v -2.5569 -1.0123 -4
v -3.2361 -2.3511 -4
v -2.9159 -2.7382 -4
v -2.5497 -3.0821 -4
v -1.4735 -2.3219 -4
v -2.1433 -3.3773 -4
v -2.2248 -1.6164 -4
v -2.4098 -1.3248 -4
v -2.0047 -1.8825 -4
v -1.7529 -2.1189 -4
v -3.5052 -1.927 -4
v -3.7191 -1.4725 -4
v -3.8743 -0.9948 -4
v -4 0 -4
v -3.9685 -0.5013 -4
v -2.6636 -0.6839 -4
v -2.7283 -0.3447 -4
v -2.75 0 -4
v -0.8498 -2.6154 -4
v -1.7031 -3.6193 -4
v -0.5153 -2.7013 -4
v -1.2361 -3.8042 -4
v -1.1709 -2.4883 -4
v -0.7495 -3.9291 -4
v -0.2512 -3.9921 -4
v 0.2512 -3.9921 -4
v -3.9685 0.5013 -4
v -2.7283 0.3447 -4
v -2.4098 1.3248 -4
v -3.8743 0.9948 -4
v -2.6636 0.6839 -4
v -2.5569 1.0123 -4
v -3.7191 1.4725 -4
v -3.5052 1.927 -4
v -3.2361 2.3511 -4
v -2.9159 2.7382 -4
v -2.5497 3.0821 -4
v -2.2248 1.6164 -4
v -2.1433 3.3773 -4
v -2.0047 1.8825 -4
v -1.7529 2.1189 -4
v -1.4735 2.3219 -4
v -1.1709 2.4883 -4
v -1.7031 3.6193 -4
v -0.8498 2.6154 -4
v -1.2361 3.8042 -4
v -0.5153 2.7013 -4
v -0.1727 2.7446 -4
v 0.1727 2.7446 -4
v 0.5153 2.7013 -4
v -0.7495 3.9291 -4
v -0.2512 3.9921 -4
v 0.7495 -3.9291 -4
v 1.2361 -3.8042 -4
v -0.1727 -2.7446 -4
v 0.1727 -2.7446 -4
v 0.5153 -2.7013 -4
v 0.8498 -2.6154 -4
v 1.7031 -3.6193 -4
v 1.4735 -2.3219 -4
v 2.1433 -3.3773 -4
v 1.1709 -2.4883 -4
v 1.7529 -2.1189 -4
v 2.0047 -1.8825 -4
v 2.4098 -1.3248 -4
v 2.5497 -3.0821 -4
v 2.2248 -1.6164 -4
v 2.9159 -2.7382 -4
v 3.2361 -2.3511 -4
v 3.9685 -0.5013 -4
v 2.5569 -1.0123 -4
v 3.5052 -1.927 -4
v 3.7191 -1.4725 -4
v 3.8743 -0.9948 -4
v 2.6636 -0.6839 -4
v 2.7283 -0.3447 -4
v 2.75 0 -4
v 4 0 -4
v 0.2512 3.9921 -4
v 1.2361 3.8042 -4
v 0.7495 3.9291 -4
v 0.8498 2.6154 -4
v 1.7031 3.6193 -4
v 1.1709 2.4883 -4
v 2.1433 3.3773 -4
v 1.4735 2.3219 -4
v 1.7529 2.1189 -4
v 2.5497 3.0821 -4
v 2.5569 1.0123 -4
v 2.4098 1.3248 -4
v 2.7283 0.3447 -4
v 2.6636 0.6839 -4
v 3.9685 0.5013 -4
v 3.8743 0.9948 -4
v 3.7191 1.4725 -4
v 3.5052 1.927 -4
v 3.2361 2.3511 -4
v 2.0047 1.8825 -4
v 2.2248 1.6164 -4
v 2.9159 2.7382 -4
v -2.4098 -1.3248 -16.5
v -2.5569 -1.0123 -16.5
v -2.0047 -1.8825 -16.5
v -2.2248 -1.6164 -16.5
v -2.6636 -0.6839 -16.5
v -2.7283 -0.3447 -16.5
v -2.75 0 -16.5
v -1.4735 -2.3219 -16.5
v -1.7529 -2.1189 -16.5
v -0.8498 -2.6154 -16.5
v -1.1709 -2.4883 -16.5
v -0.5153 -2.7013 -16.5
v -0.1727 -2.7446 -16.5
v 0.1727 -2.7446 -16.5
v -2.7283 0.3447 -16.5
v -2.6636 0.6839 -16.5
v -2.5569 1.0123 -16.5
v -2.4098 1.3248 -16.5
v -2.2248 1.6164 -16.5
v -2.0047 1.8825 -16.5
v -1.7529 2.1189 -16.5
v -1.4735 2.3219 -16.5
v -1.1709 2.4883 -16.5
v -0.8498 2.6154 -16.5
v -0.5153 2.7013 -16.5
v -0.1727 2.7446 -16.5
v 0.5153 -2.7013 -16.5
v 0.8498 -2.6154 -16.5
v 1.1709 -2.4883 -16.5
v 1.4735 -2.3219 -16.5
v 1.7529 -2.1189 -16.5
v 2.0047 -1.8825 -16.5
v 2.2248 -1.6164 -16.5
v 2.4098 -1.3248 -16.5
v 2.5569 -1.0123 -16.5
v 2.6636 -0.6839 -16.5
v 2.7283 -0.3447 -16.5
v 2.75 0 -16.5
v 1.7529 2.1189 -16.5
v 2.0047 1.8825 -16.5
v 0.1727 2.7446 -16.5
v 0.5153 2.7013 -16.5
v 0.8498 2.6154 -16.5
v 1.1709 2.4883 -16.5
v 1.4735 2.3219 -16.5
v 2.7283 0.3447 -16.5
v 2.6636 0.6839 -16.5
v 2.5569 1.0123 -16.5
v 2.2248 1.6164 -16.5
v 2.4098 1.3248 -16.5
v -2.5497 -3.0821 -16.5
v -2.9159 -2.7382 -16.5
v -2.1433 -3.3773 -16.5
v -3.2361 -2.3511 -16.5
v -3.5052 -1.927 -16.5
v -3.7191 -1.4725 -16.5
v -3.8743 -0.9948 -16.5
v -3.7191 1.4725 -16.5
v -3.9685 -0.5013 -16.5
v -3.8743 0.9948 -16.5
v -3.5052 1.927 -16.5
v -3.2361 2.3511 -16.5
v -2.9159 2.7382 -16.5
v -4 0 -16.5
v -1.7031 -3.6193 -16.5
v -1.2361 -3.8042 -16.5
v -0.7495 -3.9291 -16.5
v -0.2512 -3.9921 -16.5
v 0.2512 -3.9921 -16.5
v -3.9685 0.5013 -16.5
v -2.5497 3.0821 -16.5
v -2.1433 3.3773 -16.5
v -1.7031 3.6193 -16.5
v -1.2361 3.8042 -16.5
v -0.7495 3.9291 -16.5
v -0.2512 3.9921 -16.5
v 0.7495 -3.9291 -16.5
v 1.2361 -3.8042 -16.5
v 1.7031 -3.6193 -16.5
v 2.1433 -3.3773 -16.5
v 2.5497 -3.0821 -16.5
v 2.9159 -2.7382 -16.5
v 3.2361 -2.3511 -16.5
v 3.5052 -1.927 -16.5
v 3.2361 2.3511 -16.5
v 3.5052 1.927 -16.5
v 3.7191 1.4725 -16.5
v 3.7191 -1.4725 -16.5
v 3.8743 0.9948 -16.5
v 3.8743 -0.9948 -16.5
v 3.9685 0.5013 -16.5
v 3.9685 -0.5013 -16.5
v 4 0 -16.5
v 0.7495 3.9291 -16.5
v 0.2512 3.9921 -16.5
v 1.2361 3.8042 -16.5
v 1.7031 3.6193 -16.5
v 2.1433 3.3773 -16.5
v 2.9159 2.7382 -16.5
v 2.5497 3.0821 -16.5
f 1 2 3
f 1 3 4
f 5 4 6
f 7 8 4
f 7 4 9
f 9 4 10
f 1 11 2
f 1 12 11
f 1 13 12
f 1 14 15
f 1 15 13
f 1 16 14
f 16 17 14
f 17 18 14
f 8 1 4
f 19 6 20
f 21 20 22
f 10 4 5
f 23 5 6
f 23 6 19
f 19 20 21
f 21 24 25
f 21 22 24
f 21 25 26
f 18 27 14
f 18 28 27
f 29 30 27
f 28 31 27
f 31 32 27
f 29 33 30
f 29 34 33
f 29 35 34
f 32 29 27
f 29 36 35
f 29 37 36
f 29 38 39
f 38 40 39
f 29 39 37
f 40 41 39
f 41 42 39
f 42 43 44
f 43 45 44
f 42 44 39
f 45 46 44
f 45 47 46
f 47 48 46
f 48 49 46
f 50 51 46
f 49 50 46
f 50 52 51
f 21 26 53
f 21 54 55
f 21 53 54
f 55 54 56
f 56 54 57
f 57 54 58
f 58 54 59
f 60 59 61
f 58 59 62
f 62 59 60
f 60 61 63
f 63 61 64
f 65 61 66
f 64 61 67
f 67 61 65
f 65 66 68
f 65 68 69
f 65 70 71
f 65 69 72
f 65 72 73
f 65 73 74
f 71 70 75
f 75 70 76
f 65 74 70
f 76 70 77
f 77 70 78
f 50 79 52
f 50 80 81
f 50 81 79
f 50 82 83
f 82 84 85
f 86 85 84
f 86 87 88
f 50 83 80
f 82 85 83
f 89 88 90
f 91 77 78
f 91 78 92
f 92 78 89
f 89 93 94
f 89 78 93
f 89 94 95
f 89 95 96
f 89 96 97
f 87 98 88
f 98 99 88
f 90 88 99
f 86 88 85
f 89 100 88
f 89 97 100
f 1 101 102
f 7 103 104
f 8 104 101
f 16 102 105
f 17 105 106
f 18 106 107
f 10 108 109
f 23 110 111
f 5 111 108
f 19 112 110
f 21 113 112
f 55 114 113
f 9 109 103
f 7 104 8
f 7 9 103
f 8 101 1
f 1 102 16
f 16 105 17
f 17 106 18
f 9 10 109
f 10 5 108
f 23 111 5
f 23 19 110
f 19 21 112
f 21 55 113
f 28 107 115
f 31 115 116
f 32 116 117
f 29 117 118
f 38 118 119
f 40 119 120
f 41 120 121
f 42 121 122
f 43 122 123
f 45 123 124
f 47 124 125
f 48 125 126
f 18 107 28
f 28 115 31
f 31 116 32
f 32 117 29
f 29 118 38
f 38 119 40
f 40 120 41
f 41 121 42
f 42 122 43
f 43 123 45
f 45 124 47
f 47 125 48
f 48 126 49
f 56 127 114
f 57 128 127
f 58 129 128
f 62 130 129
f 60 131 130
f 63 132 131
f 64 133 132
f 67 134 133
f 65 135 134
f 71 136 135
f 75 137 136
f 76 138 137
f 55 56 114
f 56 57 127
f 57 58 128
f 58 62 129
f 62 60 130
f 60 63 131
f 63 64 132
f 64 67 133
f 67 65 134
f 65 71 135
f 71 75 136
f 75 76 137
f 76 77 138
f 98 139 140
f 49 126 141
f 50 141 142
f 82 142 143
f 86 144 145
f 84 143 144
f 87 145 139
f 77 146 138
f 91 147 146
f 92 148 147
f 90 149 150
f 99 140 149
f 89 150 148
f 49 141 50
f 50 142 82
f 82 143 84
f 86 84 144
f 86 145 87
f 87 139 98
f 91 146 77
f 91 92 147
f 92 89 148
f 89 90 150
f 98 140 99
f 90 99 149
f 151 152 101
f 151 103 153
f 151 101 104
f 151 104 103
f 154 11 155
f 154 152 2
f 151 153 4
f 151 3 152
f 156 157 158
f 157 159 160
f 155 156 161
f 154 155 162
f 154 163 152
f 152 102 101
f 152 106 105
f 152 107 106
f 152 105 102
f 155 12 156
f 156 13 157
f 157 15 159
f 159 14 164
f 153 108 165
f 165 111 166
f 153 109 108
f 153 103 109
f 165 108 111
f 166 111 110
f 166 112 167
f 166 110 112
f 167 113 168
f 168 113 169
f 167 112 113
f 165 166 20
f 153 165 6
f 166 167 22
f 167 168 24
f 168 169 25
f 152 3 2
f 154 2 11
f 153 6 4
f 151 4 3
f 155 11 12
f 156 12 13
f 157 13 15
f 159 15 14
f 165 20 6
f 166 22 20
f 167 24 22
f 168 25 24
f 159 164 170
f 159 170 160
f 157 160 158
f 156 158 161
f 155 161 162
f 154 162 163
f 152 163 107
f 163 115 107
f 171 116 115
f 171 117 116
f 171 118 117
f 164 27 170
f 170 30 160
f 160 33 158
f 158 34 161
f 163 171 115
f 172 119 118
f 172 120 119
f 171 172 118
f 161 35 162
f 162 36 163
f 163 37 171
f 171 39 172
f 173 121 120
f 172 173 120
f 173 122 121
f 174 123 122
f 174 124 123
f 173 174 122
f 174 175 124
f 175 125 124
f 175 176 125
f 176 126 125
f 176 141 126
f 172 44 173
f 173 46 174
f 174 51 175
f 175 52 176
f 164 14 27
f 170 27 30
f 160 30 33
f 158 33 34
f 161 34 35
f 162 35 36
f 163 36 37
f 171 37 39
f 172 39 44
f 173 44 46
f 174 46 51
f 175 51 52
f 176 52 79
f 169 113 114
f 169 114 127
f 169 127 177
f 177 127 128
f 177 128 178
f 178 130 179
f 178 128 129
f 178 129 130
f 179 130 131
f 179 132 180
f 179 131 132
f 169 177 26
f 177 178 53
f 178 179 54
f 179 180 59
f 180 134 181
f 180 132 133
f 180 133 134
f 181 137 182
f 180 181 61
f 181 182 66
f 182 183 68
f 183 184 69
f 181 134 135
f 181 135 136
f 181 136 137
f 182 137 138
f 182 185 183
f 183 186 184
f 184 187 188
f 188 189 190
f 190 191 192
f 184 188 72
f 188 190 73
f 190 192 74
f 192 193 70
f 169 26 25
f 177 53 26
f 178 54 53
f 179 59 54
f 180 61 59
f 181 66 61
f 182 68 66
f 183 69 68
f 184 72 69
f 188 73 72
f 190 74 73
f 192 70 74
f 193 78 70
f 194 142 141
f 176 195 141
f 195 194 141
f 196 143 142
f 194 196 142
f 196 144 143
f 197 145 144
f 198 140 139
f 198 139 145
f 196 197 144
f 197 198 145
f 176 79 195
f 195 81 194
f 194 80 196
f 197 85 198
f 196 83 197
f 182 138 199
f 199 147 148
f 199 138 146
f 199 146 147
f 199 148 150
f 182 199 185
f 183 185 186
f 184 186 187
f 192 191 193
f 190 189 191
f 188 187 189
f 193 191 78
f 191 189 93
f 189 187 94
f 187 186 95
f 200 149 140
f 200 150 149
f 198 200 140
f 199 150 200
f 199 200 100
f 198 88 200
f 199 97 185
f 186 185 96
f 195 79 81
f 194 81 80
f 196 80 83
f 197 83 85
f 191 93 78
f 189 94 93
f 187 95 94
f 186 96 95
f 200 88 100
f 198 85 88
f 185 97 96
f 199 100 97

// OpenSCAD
$fn = 50;

difference() {
	union() {
		translate(v = [0, 0, -16.5]) {
			cylinder(h = 19.5, r = 4.0);
		}
	}
	union() {
		translate(v = [0, 0, 0]) {
			rotate(a = [0, 0, 0]) {
				difference() {
					union() {
						translate(v = [0, 0, -4]) {
							linear_extrude(height = 4) {
								polygon(points = [[4.8468, 0.0], [2.4234000000000004, 4.197451927062417], [-2.423399999999999, 4.197451927062417], [-4.8468, 5.935618106107392e-16], [-2.423400000000002, -4.197451927062416], [2.423399999999997, -4.197451927062419]]);
							}
						}
					}
					union();
				}
			}
		}
		#cylinder(h = 3, r = 6.25);
		#translate(v = [0, 0, -100.0]) {
			cylinder(h = 200, r = 2.75);
		}
	}
}
